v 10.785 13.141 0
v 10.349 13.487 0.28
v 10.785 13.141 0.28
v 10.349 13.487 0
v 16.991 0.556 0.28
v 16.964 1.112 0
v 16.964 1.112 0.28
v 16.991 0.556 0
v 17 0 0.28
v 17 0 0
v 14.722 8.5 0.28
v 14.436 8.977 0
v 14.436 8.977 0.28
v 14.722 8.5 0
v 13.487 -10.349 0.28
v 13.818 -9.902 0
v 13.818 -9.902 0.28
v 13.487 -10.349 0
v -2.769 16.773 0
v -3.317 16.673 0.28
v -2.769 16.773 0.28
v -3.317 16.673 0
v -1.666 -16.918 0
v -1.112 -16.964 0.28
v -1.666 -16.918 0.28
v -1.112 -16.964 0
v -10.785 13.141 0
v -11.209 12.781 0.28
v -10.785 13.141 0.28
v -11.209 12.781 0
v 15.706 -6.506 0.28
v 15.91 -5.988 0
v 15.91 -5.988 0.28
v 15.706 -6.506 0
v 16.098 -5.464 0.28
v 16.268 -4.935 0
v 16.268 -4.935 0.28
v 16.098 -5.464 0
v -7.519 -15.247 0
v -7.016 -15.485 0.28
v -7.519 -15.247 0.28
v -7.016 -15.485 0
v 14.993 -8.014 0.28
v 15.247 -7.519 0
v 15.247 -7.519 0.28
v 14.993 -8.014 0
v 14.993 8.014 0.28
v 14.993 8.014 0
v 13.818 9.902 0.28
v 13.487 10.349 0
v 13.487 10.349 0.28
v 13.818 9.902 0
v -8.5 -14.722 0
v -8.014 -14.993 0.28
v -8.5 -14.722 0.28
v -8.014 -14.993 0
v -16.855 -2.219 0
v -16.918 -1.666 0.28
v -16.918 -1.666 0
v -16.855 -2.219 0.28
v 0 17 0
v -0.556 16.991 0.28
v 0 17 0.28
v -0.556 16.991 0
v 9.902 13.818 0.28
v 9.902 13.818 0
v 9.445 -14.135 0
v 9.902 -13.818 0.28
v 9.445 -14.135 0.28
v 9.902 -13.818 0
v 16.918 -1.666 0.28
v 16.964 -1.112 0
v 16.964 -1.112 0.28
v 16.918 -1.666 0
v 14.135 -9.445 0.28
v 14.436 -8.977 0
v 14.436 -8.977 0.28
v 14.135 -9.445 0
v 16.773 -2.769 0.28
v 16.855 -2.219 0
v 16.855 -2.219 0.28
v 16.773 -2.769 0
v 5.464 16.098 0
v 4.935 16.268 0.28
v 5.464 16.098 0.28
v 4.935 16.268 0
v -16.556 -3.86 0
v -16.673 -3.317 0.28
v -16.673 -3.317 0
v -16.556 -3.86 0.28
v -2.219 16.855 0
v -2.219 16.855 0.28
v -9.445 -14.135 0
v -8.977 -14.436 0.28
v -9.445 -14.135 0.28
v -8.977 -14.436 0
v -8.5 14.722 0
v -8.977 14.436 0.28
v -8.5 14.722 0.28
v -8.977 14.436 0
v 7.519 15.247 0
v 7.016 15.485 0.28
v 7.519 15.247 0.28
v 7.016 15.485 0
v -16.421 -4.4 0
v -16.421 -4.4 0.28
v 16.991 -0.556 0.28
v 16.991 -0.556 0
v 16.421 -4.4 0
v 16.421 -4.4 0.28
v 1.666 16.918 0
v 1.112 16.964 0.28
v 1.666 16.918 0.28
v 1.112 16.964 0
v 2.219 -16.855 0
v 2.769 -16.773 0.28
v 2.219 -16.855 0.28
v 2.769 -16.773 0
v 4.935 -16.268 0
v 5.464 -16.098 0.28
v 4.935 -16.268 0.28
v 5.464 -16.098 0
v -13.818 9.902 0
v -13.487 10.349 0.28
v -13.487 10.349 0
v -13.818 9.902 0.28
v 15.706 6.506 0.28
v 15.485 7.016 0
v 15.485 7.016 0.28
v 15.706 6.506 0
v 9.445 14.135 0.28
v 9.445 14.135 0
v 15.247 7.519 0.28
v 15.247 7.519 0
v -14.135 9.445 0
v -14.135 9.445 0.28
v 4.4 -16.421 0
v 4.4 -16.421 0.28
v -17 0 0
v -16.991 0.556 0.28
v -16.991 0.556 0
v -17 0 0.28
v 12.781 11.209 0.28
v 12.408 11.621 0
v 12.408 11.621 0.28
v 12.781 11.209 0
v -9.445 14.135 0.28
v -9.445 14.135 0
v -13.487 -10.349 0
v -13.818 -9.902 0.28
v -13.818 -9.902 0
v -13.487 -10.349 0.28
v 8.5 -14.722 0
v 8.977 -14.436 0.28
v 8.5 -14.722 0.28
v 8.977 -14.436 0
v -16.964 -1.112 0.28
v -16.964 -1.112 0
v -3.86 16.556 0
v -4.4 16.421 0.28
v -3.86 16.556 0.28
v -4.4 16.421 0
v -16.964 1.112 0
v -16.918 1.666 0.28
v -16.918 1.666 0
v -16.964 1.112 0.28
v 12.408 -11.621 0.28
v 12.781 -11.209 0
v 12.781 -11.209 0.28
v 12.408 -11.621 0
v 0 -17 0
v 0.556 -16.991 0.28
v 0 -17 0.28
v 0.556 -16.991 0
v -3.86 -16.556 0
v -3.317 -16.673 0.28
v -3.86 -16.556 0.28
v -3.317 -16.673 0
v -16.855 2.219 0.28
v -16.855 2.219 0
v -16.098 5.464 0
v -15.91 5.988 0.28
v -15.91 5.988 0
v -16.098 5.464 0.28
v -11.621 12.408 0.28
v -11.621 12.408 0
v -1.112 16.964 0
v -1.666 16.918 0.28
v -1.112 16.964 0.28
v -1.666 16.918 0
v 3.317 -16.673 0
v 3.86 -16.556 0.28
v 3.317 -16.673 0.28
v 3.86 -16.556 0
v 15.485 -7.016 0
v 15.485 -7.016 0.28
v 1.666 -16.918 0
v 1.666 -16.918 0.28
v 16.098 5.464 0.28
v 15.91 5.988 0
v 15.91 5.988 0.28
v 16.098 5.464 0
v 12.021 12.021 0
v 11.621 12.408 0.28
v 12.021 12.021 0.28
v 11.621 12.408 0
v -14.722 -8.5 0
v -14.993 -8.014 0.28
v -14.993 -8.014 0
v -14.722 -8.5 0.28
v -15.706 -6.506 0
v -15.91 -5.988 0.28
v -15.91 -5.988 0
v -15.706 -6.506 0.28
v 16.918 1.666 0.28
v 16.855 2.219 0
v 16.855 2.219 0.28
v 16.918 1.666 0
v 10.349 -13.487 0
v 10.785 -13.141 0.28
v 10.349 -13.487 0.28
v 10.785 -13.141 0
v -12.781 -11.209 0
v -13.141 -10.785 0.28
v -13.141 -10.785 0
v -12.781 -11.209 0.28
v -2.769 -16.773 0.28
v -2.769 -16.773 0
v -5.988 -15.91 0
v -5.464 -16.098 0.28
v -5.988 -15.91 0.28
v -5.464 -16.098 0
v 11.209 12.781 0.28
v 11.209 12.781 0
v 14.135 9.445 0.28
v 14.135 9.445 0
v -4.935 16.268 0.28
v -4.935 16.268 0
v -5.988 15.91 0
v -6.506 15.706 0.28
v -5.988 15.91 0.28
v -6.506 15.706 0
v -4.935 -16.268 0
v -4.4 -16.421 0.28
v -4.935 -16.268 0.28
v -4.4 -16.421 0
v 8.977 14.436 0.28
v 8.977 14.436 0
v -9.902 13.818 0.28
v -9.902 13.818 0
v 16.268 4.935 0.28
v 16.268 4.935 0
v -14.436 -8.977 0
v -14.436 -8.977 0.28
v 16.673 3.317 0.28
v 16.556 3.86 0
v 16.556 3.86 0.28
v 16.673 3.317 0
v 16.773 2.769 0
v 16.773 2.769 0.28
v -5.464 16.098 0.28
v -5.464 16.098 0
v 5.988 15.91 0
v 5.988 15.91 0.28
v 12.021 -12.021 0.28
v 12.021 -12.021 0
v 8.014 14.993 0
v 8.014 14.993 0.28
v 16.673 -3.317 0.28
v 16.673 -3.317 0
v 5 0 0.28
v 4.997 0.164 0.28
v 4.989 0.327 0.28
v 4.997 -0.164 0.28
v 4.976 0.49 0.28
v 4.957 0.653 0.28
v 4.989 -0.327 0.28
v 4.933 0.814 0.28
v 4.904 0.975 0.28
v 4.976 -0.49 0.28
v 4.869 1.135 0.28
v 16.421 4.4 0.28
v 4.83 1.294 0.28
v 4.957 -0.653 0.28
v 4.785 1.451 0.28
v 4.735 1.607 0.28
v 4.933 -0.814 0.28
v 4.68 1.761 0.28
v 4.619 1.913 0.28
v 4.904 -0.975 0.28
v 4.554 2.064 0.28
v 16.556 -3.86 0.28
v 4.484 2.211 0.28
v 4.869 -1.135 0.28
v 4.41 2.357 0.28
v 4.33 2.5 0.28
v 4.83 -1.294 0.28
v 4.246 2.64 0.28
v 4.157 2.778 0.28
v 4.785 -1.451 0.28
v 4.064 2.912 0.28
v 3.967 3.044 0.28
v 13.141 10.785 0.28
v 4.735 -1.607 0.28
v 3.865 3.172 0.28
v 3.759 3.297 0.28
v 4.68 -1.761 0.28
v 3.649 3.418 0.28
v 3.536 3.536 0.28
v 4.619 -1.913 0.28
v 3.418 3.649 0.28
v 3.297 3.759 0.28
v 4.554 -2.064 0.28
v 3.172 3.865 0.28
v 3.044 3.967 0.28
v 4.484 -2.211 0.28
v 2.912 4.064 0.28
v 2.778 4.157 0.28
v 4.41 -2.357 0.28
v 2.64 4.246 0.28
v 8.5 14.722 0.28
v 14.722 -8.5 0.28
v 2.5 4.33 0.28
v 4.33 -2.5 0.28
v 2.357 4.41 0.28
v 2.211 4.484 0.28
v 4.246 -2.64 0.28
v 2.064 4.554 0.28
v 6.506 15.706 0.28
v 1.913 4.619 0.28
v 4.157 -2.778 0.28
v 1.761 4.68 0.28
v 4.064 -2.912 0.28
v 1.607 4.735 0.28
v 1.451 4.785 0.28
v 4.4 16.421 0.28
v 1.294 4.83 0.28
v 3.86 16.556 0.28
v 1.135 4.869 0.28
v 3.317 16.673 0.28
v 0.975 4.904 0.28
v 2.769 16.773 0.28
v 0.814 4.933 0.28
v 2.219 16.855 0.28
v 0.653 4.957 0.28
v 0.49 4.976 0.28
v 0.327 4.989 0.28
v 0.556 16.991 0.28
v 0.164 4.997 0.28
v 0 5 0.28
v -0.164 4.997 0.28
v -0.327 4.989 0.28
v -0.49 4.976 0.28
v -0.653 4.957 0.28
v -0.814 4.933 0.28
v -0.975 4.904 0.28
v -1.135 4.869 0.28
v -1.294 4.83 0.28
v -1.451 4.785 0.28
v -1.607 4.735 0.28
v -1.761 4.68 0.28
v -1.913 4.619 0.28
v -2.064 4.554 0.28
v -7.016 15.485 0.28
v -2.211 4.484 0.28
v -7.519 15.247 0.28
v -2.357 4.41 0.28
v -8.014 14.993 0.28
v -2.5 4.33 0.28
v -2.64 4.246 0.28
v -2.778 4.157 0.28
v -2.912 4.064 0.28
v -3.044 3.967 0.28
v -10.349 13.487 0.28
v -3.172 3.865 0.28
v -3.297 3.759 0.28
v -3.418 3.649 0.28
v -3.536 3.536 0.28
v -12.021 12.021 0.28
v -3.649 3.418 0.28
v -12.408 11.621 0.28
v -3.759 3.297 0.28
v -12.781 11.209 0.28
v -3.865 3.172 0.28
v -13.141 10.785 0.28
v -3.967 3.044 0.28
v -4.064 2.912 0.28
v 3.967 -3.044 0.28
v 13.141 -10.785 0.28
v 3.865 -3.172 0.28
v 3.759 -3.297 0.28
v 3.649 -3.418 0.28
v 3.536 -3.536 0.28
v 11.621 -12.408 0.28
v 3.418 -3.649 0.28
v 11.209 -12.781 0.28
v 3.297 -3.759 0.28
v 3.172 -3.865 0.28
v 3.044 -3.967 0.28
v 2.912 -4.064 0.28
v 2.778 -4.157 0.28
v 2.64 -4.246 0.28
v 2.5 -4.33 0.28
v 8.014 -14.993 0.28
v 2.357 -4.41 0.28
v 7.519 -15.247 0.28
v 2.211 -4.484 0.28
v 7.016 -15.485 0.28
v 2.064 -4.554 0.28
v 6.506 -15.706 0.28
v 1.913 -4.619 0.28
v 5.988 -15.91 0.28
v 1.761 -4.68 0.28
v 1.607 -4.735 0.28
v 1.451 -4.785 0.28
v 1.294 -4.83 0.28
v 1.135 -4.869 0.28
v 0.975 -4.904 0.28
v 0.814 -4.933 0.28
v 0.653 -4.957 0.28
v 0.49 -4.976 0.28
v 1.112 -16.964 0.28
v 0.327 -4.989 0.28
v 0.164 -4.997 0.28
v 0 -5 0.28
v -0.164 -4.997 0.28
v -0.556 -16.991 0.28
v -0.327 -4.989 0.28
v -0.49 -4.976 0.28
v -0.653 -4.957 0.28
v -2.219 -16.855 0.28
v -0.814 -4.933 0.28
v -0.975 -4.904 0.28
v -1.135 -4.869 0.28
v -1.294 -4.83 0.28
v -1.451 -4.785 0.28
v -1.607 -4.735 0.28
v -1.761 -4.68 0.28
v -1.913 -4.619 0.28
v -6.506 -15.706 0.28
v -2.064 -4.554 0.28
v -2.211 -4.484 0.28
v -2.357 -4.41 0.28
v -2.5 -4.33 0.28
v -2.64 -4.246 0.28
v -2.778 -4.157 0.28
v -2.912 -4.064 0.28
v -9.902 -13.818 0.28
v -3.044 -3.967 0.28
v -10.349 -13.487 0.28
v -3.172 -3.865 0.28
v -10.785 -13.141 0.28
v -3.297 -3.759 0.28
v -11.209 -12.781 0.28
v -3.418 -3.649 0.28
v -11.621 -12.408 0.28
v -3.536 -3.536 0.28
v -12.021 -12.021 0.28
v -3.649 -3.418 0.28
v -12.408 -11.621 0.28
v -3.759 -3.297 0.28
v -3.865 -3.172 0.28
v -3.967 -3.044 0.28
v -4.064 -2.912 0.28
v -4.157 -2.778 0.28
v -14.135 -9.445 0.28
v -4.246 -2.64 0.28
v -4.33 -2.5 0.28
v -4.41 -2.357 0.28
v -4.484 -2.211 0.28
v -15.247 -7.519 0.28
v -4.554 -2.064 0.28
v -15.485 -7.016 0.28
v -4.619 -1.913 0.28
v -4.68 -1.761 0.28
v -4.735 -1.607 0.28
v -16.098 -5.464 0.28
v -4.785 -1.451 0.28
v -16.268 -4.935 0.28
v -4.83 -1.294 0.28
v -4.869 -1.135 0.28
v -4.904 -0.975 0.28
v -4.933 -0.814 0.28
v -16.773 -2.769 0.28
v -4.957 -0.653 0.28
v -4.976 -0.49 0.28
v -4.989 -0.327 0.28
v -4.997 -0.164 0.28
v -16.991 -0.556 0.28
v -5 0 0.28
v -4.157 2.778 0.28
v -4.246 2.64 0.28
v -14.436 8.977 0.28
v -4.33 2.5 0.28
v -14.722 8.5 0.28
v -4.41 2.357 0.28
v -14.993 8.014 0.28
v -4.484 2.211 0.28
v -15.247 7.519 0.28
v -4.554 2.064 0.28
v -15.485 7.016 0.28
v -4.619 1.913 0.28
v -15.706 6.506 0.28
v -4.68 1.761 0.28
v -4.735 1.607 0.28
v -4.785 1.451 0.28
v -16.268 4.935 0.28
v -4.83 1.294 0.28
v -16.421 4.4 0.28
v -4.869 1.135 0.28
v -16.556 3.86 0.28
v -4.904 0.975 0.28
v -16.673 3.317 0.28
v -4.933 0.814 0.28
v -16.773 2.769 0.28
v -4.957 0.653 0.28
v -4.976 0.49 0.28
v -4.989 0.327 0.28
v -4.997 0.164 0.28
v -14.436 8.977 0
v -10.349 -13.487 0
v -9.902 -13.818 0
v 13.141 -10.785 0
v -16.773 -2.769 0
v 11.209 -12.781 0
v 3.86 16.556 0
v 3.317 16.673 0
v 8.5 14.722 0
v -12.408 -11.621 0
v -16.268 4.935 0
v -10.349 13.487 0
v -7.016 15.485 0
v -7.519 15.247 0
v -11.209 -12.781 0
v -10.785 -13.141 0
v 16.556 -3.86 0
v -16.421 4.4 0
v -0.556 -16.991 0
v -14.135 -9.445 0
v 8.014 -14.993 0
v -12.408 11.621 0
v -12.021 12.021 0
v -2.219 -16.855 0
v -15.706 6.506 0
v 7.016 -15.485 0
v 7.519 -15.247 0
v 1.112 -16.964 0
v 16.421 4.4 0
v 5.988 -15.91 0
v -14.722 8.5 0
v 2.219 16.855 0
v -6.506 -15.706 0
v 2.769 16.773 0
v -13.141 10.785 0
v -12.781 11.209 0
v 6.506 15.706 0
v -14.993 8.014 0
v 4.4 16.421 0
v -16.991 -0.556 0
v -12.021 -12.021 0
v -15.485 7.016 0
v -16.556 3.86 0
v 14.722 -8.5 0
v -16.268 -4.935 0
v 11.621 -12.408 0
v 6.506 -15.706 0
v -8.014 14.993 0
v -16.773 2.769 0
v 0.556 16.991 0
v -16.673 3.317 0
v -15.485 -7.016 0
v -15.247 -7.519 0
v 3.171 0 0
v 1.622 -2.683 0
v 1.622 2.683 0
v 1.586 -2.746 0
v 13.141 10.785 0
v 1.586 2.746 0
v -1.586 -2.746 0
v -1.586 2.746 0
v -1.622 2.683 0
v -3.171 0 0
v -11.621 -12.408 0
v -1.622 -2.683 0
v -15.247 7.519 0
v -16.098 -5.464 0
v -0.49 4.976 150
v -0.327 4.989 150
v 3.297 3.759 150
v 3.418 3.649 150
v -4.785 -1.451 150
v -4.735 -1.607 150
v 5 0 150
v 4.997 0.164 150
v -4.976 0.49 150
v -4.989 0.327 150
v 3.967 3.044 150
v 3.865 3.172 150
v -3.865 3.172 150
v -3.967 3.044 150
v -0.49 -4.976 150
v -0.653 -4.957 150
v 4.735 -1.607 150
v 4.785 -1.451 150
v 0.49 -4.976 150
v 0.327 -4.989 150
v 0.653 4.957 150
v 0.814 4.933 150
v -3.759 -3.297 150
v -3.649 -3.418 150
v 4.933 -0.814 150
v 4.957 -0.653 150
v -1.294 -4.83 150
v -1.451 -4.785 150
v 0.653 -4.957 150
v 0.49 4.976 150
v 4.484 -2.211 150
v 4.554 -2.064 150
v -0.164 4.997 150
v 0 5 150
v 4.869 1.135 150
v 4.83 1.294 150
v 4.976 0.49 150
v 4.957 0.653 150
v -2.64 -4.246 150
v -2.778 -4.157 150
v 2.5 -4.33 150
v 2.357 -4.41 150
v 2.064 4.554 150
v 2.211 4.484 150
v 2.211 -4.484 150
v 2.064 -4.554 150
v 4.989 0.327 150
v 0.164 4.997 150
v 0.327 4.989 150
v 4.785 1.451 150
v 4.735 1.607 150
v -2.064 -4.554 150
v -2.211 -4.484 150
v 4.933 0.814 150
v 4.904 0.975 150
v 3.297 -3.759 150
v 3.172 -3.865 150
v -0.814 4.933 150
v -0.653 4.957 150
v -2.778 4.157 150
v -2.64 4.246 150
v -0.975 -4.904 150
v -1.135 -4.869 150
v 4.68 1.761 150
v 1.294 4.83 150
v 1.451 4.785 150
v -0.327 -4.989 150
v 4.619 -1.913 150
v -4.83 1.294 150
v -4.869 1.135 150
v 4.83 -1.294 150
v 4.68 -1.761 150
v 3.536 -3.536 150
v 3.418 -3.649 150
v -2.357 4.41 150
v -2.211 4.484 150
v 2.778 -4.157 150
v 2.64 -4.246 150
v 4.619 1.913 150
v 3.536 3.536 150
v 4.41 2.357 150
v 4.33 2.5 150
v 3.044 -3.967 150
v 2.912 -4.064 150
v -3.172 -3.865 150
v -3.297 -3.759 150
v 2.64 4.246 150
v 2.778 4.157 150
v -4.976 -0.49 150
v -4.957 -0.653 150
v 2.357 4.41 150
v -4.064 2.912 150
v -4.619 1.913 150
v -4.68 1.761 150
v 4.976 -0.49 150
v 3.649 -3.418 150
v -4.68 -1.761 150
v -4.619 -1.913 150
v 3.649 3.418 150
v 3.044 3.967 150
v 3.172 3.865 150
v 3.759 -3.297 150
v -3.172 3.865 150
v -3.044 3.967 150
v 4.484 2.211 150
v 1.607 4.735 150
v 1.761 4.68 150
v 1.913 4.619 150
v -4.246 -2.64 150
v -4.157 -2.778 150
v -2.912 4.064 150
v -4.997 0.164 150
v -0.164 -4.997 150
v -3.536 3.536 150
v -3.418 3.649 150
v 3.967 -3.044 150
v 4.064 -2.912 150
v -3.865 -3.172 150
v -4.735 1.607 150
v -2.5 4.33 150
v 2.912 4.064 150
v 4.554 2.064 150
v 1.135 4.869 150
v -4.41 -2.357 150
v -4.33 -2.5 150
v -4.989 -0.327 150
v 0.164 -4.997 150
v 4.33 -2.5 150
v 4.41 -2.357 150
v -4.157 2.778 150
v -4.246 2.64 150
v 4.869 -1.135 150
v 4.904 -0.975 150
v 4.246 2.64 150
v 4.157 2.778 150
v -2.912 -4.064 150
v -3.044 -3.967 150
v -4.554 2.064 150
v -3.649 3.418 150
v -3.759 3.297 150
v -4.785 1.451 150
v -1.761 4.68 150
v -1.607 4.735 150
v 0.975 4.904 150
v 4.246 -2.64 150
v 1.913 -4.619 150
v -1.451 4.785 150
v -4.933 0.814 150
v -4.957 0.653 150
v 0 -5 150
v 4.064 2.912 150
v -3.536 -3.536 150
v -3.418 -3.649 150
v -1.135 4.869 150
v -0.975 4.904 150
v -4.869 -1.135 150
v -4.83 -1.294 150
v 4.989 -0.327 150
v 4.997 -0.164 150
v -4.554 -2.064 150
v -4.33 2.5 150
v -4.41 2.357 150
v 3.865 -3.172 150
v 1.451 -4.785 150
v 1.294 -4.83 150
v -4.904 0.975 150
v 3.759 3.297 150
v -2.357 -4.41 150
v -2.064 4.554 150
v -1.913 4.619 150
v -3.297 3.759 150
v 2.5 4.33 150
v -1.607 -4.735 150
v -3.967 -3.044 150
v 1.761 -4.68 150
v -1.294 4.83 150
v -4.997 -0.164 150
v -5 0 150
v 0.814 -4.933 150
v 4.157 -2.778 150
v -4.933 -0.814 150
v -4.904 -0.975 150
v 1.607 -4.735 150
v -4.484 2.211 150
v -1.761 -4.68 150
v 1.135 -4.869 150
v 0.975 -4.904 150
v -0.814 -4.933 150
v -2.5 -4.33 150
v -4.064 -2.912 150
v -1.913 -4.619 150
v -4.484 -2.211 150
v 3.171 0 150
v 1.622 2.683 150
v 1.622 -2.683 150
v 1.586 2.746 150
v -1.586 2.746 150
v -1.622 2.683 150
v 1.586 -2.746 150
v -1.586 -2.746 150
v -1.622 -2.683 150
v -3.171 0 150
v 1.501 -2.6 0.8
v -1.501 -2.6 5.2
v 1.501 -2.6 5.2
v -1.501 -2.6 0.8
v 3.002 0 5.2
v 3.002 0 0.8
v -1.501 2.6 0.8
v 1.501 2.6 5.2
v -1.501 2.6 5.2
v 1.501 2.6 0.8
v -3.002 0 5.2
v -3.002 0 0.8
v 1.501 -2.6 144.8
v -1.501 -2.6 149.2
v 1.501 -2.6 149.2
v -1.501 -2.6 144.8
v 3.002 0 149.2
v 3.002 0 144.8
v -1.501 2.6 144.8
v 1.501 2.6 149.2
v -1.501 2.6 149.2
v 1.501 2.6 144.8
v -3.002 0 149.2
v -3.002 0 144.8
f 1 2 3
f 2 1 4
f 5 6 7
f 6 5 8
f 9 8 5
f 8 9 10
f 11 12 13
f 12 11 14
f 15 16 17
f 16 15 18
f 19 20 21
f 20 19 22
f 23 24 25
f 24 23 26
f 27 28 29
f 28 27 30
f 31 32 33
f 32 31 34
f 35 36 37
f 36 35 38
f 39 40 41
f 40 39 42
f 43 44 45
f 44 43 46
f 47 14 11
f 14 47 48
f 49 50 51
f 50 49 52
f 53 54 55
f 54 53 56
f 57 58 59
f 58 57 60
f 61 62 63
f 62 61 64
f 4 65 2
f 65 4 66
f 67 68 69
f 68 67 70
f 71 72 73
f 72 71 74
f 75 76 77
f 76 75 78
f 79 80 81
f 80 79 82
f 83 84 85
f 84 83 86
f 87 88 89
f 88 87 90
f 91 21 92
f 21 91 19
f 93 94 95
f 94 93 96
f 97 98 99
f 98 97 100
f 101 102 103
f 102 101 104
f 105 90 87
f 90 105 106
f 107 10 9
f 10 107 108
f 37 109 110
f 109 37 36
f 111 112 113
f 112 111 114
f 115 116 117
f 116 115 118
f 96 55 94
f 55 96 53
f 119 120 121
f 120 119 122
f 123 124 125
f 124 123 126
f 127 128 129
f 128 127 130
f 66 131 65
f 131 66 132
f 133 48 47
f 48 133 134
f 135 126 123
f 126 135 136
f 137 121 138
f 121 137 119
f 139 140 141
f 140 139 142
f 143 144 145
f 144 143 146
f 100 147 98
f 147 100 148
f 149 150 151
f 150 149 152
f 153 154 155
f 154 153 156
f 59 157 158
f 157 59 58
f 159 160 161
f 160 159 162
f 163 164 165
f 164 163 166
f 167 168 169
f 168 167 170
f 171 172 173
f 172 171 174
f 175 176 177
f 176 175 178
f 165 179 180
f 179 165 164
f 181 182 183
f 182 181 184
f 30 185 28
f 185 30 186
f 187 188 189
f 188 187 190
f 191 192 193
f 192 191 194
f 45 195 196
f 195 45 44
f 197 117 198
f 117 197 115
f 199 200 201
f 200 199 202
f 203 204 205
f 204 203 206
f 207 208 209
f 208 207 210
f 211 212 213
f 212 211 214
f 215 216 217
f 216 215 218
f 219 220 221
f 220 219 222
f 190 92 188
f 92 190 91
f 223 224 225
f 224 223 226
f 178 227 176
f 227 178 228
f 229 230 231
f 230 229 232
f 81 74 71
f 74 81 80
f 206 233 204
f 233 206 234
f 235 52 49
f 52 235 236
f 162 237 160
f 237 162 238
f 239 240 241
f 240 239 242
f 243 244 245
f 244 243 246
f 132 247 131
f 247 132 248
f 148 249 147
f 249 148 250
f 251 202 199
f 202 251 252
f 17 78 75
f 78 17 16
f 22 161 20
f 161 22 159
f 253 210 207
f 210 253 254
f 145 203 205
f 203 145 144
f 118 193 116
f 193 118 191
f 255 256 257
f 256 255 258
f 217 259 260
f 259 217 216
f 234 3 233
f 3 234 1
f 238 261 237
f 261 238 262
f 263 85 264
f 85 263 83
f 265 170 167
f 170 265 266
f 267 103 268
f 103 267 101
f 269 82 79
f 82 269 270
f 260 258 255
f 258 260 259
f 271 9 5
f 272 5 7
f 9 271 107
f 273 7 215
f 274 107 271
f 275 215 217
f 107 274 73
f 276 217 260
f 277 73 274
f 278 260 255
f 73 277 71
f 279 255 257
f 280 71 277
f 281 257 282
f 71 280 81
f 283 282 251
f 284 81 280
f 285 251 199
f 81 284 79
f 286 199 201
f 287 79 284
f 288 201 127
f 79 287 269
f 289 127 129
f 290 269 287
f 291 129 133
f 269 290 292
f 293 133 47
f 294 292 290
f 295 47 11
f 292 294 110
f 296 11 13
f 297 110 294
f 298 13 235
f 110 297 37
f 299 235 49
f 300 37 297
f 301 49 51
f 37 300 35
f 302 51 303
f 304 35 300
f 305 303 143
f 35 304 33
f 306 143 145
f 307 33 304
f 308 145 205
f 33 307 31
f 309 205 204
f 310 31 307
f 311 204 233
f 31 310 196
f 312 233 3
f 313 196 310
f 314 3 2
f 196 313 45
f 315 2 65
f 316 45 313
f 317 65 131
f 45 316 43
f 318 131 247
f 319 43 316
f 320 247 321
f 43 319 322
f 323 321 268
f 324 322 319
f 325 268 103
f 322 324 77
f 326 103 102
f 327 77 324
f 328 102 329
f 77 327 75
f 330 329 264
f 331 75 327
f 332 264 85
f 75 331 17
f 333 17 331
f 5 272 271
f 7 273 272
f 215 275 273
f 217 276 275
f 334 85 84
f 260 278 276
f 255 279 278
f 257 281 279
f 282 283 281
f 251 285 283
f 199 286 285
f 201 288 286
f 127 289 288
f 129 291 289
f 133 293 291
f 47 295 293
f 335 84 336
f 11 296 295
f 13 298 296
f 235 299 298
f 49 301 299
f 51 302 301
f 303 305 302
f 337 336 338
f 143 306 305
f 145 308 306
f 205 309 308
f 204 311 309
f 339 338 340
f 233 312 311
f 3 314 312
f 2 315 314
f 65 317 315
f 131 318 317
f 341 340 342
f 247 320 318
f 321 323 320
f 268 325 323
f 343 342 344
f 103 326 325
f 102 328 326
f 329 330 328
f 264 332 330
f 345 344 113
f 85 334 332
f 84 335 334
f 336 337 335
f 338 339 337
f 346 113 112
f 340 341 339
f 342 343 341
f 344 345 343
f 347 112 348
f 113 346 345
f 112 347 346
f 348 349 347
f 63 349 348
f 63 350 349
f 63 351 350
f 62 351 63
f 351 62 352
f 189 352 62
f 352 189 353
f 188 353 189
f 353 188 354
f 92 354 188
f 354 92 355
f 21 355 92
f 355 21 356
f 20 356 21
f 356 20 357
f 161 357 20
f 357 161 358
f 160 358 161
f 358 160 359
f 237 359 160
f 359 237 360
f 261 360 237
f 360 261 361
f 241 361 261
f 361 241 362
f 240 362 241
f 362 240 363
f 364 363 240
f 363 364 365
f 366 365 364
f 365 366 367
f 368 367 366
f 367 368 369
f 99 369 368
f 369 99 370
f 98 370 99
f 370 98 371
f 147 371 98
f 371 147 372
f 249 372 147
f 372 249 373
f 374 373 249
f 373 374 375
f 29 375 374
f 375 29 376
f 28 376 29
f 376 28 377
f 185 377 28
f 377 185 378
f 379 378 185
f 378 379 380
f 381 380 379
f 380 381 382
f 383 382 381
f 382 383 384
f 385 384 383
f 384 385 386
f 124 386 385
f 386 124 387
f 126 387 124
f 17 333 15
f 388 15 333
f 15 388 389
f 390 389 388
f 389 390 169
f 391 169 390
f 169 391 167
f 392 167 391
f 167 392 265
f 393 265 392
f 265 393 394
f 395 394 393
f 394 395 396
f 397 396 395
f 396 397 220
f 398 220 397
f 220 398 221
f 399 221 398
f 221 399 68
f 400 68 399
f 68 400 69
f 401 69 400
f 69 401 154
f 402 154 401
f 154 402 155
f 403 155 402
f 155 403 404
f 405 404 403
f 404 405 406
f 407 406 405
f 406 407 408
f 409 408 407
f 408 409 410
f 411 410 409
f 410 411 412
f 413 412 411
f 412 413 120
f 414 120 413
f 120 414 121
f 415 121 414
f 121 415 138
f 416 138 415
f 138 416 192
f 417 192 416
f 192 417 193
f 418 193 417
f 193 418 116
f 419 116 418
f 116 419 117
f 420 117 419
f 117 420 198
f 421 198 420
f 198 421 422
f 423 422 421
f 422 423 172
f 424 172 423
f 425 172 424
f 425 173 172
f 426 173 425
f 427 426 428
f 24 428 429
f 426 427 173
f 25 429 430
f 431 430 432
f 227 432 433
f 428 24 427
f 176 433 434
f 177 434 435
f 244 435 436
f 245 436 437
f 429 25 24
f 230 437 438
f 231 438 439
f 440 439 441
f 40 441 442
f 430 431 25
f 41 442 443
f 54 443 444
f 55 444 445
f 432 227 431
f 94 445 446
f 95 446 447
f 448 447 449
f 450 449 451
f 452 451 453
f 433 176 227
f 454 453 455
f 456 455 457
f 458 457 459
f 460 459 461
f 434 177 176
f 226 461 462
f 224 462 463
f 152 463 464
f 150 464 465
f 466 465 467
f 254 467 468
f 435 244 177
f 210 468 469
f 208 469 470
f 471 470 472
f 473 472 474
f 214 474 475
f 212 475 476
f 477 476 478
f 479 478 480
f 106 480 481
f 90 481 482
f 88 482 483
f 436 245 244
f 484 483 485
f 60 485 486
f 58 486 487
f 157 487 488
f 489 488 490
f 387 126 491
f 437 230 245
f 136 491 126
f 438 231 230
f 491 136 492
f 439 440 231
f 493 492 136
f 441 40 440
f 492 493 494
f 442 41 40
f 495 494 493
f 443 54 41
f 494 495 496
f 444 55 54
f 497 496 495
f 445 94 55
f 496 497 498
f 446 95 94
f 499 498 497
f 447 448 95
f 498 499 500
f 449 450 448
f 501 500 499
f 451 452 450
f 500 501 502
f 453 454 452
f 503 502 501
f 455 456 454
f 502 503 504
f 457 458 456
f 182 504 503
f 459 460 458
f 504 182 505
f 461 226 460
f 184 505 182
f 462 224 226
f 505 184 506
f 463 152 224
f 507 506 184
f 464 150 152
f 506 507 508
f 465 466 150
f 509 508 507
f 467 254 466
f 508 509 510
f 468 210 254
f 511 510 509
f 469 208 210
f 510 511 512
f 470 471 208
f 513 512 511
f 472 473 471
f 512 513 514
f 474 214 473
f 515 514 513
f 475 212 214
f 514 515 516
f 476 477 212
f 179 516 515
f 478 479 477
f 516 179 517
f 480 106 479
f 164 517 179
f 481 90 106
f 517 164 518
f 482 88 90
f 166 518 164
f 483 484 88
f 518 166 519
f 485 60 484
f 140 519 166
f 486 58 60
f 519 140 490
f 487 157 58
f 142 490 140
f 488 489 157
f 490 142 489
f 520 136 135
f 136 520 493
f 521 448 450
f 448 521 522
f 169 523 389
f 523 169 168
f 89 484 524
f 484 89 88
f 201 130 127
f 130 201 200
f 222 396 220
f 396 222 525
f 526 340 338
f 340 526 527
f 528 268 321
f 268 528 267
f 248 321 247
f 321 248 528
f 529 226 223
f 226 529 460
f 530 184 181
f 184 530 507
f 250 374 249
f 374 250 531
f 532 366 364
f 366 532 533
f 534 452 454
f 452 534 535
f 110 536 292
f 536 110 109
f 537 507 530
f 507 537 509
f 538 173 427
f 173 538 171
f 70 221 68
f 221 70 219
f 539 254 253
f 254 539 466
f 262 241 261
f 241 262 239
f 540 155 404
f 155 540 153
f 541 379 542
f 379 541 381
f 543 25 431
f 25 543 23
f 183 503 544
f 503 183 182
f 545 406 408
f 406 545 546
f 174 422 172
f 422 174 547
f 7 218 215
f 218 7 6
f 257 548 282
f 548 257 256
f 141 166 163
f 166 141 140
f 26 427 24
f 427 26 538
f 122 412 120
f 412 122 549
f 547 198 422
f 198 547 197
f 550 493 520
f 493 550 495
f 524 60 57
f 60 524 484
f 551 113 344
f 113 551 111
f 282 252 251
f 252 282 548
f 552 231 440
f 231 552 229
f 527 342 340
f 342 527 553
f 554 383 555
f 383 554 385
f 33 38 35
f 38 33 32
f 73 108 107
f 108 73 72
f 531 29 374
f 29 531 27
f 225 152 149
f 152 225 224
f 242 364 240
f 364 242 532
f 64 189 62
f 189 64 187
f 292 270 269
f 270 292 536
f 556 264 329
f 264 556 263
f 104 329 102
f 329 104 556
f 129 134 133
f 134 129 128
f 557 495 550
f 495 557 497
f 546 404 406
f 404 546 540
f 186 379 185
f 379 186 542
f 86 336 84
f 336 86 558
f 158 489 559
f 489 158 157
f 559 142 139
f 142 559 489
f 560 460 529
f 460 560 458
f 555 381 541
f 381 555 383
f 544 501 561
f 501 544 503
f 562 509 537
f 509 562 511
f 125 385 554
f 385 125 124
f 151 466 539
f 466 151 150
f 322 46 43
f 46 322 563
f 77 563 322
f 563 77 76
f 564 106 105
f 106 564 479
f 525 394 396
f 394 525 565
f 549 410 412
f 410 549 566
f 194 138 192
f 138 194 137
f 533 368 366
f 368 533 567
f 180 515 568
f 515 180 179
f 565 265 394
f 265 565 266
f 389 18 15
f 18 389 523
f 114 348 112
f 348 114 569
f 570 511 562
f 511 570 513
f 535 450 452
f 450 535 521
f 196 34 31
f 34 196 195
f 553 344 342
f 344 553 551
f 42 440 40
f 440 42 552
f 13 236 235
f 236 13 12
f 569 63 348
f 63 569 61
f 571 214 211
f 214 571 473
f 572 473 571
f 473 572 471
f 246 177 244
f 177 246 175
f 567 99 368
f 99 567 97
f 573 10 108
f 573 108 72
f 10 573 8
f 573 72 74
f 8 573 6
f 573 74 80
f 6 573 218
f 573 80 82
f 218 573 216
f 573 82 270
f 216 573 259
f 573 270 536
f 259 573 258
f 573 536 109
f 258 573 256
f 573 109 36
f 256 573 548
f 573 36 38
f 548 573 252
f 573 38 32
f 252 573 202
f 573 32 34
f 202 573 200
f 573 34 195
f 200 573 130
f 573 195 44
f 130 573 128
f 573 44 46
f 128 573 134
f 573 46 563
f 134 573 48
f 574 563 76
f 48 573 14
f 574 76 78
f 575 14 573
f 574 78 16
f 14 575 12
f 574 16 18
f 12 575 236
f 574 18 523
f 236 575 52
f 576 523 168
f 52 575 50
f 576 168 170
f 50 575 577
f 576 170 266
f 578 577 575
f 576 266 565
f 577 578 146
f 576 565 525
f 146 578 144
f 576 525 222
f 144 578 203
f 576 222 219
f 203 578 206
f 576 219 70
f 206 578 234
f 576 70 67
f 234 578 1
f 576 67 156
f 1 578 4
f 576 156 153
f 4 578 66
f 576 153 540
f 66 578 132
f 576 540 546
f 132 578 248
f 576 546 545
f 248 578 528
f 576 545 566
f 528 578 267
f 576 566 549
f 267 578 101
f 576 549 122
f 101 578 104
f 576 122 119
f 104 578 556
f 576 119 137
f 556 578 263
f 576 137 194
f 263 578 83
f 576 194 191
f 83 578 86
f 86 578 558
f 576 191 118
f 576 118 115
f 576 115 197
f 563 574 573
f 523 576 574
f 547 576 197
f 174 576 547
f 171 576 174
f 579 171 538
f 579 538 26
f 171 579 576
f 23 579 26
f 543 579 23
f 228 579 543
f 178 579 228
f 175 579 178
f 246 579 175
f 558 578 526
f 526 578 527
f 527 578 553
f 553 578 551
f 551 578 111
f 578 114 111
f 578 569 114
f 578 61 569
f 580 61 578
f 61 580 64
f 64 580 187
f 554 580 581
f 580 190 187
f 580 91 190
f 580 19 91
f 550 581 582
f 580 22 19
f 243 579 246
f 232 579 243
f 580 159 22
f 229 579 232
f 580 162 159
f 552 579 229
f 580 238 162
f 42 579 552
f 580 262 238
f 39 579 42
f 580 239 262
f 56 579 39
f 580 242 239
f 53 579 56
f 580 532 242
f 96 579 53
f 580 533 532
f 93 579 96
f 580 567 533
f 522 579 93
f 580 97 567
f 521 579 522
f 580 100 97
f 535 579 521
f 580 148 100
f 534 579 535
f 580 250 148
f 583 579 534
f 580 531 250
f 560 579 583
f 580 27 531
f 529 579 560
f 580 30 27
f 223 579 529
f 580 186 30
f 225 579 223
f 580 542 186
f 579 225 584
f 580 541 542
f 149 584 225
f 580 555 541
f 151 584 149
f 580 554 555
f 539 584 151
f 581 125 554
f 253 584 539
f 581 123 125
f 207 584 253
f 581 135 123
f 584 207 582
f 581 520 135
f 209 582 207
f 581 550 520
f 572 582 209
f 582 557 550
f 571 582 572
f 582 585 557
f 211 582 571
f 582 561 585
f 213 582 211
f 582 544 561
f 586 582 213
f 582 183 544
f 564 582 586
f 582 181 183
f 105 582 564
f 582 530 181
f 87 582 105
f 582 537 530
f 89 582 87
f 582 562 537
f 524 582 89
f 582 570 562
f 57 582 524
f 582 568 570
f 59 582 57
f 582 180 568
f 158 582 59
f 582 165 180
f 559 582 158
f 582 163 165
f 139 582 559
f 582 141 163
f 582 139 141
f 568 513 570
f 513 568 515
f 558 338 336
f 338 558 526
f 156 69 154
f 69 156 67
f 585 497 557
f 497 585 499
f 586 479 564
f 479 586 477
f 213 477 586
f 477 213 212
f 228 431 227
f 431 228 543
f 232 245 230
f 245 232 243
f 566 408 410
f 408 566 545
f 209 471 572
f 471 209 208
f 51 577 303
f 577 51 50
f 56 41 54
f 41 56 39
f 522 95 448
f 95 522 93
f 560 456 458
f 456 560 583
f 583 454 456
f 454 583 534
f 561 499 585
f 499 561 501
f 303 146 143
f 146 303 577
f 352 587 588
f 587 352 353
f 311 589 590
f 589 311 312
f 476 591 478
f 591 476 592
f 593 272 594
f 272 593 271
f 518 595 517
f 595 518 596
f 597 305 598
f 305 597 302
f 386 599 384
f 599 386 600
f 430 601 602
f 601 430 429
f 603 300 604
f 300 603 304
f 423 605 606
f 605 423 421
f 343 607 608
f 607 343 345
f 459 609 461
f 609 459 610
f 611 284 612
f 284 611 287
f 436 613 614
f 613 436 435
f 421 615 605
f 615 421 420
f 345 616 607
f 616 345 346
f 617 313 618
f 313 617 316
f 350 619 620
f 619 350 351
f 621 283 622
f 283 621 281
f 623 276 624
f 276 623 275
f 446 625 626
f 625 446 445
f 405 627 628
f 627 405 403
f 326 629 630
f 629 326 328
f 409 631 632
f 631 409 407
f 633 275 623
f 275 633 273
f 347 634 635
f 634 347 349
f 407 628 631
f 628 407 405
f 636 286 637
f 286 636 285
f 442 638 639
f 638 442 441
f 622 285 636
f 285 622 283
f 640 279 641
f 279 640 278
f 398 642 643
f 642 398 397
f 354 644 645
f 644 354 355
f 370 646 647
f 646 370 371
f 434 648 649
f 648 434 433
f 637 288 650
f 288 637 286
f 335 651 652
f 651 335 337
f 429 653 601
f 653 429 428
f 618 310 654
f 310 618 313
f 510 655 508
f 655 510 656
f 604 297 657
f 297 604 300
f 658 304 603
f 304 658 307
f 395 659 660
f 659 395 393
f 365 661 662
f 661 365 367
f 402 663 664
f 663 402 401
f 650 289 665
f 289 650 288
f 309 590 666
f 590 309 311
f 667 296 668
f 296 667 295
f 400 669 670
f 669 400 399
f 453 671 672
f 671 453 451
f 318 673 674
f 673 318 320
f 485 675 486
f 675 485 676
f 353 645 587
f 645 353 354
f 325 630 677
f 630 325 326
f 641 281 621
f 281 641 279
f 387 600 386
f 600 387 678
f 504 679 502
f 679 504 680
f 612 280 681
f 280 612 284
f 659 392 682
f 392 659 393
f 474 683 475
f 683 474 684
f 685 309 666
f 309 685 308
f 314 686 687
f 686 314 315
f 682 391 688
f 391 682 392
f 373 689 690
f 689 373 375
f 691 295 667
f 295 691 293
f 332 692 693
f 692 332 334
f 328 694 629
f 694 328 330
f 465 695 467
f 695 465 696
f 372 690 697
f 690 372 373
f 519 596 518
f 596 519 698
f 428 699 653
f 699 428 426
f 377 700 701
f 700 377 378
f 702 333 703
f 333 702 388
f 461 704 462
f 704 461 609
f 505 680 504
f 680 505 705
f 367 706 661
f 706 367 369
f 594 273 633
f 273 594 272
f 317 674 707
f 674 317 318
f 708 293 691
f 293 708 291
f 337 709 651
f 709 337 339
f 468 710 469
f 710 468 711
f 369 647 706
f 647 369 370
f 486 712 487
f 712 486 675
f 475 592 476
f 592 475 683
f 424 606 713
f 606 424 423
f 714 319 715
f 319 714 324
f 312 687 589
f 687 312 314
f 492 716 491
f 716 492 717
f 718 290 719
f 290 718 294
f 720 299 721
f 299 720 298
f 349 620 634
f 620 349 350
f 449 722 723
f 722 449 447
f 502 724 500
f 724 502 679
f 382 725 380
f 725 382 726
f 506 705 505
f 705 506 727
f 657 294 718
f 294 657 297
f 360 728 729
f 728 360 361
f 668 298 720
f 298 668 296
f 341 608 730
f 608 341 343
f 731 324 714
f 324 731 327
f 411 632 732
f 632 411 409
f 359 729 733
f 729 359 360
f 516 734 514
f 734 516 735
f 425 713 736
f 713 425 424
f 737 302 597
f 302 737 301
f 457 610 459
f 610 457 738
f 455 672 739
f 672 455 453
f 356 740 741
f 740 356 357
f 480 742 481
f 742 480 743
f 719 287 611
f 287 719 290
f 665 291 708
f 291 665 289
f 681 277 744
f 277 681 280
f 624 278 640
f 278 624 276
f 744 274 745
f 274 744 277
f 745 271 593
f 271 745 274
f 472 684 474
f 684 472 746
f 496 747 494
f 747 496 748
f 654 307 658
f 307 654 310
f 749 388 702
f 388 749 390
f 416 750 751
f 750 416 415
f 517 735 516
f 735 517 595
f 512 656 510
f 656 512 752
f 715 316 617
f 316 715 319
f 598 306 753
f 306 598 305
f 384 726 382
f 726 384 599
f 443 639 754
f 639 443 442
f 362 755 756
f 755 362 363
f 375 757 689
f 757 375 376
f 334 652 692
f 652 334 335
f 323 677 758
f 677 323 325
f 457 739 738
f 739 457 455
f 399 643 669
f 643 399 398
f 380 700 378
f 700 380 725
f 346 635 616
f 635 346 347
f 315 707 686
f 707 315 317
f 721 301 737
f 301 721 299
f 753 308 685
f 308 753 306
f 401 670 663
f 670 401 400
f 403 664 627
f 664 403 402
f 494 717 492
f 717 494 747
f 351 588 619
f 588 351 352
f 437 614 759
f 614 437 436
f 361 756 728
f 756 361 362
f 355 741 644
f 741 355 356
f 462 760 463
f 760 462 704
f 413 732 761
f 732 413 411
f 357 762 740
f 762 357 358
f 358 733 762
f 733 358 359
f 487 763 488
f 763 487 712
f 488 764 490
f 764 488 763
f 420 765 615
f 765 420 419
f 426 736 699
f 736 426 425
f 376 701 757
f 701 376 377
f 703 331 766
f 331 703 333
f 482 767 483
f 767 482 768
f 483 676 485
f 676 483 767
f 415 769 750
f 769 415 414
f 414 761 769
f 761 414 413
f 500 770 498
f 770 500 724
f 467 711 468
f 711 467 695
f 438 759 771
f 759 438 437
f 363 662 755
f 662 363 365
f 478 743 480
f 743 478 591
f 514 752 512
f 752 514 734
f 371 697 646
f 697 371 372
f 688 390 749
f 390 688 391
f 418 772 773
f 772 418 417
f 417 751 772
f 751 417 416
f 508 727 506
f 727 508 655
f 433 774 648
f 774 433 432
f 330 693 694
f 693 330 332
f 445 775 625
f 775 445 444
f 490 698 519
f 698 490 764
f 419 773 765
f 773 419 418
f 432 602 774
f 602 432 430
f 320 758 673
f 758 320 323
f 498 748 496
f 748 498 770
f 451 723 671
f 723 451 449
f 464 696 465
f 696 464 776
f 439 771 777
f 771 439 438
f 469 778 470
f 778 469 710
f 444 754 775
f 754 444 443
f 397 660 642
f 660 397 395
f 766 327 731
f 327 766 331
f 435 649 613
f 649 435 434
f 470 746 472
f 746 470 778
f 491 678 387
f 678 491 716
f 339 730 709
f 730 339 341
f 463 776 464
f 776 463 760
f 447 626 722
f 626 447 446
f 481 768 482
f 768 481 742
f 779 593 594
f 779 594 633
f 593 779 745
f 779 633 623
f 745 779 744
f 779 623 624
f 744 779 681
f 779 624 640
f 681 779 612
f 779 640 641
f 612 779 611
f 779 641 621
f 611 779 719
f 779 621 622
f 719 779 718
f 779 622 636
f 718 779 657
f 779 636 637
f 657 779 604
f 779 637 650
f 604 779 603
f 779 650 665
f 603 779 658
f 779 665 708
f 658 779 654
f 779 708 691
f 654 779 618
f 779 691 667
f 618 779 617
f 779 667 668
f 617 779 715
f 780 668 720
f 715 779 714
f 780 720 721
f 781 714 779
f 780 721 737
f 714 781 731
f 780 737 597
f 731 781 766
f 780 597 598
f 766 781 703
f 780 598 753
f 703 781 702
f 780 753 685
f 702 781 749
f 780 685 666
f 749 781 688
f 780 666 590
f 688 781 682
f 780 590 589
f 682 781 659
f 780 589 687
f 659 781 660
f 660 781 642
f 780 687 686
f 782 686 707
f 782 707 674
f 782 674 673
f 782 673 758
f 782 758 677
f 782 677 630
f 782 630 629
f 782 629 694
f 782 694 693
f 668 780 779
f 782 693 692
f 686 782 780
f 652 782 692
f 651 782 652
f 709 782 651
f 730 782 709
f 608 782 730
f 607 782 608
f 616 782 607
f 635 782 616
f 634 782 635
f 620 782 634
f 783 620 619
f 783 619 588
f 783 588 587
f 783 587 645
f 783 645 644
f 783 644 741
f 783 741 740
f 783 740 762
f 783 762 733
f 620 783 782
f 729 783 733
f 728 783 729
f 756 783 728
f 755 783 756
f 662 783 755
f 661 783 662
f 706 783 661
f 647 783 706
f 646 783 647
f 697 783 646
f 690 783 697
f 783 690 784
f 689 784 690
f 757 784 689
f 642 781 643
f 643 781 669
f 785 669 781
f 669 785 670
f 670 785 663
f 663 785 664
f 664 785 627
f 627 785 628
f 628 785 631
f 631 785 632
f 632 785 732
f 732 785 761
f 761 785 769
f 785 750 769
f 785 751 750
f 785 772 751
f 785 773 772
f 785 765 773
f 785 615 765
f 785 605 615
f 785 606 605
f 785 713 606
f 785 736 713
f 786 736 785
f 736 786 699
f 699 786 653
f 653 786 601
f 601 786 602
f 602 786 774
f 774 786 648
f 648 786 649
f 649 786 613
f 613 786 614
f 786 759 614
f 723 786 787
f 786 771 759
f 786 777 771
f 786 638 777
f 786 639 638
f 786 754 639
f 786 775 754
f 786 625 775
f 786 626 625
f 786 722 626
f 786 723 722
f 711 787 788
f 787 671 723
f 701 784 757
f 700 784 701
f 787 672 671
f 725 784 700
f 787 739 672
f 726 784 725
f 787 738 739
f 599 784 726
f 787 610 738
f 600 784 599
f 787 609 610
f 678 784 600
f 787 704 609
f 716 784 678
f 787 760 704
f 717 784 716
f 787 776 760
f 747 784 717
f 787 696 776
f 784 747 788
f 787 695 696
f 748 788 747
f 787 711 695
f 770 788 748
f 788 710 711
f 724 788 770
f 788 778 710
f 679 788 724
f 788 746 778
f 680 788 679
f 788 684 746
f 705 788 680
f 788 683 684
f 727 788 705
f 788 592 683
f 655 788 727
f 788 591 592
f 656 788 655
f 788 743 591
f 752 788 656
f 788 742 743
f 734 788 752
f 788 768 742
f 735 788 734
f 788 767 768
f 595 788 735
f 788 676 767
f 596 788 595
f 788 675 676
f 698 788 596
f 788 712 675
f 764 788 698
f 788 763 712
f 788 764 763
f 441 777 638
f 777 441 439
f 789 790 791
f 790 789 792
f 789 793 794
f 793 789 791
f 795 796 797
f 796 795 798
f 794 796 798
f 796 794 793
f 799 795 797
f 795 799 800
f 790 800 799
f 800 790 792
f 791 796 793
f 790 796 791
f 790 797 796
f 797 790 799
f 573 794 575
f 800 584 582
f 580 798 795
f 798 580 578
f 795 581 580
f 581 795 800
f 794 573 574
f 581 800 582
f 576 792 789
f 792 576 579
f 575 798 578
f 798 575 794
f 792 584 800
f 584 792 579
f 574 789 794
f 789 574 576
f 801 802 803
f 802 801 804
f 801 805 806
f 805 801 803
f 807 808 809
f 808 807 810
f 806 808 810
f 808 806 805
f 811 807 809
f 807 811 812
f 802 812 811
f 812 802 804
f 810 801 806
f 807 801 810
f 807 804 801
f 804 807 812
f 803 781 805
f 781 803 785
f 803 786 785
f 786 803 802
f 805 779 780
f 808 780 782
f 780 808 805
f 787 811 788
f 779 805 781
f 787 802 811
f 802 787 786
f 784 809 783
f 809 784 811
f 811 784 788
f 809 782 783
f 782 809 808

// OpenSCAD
// file: main.scad
// Smooth replacement main shaft for the imported golden_cudgel model.
// The original main.stl was a 9 mm diameter shaft with engraved characters.
// This version removes the character cuts, increases the diameter to 10 mm,
// and keeps the original hex sockets so the already-printed side pieces fit.

$fn = 192;

main_length = 150;        // mm
main_diameter = 10;       // mm

// The side-piece hex peg measures about 5.0 mm across flats.
side_hex_across_flats = 5.0;
socket_clearance = 0.2;   // mm across flats, i.e. about 0.1 mm per side
socket_depth = 5.2;       // mm, slightly deeper than the original 5 mm socket
lead_in_depth = 0.8;      // mm chamfer to help the side peg start cleanly
lead_in_extra = 0.3;      // mm extra across flats at the socket mouth

base_diameter = 34;       // mm sacrificial base diameter for the removable variant
base_thickness = 0.28;    // mm, roughly a first-layer sacrificial brim
base_overlap = 0.25;      // mm radial overlap with the shaft so it prints attached
eps = 0.02;

function hex_radius(across_flats) = across_flats / sqrt(3);

module hex_prism(h, across_flats) {
    cylinder(h = h, r = hex_radius(across_flats), $fn = 6, center = false);
}

module socket_cutouts() {
    socket_af = side_hex_across_flats + socket_clearance;
    lead_af = socket_af + lead_in_extra;

    // Bottom socket.
    translate([0, 0, -eps])
        hex_prism(socket_depth + eps, socket_af);
    translate([0, 0, -eps])
        cylinder(
            h = lead_in_depth + eps,
            r1 = hex_radius(lead_af),
            r2 = hex_radius(socket_af),
            $fn = 6,
            center = false
        );

    // Top socket.
    translate([0, 0, main_length - socket_depth])
        hex_prism(socket_depth + eps, socket_af);
    translate([0, 0, main_length - lead_in_depth])
        cylinder(
            h = lead_in_depth + eps,
            r1 = hex_radius(socket_af),
            r2 = hex_radius(lead_af),
            $fn = 6,
            center = false
        );
}

module removable_base() {
    difference() {
        cylinder(h = base_thickness, d = base_diameter, center = false);
        translate([0, 0, -eps])
            cylinder(
                h = base_thickness + 2 * eps,
                d = main_diameter - 2 * base_overlap,
                center = false
            );
    }
}

module main_shaft(with_base = false) {
    difference() {
        union() {
            cylinder(h = main_length, d = main_diameter, center = false);
            if (with_base)
                removable_base();
        }
        socket_cutouts();
    }
}

main_shaft();
// main file
// Socketed main shaft with a thin removable sacrificial base.
// Render with:
//   openscad -o main_with_removable_base.stl main_with_removable_base.scad

use <main.scad>

main_shaft(with_base = true);
